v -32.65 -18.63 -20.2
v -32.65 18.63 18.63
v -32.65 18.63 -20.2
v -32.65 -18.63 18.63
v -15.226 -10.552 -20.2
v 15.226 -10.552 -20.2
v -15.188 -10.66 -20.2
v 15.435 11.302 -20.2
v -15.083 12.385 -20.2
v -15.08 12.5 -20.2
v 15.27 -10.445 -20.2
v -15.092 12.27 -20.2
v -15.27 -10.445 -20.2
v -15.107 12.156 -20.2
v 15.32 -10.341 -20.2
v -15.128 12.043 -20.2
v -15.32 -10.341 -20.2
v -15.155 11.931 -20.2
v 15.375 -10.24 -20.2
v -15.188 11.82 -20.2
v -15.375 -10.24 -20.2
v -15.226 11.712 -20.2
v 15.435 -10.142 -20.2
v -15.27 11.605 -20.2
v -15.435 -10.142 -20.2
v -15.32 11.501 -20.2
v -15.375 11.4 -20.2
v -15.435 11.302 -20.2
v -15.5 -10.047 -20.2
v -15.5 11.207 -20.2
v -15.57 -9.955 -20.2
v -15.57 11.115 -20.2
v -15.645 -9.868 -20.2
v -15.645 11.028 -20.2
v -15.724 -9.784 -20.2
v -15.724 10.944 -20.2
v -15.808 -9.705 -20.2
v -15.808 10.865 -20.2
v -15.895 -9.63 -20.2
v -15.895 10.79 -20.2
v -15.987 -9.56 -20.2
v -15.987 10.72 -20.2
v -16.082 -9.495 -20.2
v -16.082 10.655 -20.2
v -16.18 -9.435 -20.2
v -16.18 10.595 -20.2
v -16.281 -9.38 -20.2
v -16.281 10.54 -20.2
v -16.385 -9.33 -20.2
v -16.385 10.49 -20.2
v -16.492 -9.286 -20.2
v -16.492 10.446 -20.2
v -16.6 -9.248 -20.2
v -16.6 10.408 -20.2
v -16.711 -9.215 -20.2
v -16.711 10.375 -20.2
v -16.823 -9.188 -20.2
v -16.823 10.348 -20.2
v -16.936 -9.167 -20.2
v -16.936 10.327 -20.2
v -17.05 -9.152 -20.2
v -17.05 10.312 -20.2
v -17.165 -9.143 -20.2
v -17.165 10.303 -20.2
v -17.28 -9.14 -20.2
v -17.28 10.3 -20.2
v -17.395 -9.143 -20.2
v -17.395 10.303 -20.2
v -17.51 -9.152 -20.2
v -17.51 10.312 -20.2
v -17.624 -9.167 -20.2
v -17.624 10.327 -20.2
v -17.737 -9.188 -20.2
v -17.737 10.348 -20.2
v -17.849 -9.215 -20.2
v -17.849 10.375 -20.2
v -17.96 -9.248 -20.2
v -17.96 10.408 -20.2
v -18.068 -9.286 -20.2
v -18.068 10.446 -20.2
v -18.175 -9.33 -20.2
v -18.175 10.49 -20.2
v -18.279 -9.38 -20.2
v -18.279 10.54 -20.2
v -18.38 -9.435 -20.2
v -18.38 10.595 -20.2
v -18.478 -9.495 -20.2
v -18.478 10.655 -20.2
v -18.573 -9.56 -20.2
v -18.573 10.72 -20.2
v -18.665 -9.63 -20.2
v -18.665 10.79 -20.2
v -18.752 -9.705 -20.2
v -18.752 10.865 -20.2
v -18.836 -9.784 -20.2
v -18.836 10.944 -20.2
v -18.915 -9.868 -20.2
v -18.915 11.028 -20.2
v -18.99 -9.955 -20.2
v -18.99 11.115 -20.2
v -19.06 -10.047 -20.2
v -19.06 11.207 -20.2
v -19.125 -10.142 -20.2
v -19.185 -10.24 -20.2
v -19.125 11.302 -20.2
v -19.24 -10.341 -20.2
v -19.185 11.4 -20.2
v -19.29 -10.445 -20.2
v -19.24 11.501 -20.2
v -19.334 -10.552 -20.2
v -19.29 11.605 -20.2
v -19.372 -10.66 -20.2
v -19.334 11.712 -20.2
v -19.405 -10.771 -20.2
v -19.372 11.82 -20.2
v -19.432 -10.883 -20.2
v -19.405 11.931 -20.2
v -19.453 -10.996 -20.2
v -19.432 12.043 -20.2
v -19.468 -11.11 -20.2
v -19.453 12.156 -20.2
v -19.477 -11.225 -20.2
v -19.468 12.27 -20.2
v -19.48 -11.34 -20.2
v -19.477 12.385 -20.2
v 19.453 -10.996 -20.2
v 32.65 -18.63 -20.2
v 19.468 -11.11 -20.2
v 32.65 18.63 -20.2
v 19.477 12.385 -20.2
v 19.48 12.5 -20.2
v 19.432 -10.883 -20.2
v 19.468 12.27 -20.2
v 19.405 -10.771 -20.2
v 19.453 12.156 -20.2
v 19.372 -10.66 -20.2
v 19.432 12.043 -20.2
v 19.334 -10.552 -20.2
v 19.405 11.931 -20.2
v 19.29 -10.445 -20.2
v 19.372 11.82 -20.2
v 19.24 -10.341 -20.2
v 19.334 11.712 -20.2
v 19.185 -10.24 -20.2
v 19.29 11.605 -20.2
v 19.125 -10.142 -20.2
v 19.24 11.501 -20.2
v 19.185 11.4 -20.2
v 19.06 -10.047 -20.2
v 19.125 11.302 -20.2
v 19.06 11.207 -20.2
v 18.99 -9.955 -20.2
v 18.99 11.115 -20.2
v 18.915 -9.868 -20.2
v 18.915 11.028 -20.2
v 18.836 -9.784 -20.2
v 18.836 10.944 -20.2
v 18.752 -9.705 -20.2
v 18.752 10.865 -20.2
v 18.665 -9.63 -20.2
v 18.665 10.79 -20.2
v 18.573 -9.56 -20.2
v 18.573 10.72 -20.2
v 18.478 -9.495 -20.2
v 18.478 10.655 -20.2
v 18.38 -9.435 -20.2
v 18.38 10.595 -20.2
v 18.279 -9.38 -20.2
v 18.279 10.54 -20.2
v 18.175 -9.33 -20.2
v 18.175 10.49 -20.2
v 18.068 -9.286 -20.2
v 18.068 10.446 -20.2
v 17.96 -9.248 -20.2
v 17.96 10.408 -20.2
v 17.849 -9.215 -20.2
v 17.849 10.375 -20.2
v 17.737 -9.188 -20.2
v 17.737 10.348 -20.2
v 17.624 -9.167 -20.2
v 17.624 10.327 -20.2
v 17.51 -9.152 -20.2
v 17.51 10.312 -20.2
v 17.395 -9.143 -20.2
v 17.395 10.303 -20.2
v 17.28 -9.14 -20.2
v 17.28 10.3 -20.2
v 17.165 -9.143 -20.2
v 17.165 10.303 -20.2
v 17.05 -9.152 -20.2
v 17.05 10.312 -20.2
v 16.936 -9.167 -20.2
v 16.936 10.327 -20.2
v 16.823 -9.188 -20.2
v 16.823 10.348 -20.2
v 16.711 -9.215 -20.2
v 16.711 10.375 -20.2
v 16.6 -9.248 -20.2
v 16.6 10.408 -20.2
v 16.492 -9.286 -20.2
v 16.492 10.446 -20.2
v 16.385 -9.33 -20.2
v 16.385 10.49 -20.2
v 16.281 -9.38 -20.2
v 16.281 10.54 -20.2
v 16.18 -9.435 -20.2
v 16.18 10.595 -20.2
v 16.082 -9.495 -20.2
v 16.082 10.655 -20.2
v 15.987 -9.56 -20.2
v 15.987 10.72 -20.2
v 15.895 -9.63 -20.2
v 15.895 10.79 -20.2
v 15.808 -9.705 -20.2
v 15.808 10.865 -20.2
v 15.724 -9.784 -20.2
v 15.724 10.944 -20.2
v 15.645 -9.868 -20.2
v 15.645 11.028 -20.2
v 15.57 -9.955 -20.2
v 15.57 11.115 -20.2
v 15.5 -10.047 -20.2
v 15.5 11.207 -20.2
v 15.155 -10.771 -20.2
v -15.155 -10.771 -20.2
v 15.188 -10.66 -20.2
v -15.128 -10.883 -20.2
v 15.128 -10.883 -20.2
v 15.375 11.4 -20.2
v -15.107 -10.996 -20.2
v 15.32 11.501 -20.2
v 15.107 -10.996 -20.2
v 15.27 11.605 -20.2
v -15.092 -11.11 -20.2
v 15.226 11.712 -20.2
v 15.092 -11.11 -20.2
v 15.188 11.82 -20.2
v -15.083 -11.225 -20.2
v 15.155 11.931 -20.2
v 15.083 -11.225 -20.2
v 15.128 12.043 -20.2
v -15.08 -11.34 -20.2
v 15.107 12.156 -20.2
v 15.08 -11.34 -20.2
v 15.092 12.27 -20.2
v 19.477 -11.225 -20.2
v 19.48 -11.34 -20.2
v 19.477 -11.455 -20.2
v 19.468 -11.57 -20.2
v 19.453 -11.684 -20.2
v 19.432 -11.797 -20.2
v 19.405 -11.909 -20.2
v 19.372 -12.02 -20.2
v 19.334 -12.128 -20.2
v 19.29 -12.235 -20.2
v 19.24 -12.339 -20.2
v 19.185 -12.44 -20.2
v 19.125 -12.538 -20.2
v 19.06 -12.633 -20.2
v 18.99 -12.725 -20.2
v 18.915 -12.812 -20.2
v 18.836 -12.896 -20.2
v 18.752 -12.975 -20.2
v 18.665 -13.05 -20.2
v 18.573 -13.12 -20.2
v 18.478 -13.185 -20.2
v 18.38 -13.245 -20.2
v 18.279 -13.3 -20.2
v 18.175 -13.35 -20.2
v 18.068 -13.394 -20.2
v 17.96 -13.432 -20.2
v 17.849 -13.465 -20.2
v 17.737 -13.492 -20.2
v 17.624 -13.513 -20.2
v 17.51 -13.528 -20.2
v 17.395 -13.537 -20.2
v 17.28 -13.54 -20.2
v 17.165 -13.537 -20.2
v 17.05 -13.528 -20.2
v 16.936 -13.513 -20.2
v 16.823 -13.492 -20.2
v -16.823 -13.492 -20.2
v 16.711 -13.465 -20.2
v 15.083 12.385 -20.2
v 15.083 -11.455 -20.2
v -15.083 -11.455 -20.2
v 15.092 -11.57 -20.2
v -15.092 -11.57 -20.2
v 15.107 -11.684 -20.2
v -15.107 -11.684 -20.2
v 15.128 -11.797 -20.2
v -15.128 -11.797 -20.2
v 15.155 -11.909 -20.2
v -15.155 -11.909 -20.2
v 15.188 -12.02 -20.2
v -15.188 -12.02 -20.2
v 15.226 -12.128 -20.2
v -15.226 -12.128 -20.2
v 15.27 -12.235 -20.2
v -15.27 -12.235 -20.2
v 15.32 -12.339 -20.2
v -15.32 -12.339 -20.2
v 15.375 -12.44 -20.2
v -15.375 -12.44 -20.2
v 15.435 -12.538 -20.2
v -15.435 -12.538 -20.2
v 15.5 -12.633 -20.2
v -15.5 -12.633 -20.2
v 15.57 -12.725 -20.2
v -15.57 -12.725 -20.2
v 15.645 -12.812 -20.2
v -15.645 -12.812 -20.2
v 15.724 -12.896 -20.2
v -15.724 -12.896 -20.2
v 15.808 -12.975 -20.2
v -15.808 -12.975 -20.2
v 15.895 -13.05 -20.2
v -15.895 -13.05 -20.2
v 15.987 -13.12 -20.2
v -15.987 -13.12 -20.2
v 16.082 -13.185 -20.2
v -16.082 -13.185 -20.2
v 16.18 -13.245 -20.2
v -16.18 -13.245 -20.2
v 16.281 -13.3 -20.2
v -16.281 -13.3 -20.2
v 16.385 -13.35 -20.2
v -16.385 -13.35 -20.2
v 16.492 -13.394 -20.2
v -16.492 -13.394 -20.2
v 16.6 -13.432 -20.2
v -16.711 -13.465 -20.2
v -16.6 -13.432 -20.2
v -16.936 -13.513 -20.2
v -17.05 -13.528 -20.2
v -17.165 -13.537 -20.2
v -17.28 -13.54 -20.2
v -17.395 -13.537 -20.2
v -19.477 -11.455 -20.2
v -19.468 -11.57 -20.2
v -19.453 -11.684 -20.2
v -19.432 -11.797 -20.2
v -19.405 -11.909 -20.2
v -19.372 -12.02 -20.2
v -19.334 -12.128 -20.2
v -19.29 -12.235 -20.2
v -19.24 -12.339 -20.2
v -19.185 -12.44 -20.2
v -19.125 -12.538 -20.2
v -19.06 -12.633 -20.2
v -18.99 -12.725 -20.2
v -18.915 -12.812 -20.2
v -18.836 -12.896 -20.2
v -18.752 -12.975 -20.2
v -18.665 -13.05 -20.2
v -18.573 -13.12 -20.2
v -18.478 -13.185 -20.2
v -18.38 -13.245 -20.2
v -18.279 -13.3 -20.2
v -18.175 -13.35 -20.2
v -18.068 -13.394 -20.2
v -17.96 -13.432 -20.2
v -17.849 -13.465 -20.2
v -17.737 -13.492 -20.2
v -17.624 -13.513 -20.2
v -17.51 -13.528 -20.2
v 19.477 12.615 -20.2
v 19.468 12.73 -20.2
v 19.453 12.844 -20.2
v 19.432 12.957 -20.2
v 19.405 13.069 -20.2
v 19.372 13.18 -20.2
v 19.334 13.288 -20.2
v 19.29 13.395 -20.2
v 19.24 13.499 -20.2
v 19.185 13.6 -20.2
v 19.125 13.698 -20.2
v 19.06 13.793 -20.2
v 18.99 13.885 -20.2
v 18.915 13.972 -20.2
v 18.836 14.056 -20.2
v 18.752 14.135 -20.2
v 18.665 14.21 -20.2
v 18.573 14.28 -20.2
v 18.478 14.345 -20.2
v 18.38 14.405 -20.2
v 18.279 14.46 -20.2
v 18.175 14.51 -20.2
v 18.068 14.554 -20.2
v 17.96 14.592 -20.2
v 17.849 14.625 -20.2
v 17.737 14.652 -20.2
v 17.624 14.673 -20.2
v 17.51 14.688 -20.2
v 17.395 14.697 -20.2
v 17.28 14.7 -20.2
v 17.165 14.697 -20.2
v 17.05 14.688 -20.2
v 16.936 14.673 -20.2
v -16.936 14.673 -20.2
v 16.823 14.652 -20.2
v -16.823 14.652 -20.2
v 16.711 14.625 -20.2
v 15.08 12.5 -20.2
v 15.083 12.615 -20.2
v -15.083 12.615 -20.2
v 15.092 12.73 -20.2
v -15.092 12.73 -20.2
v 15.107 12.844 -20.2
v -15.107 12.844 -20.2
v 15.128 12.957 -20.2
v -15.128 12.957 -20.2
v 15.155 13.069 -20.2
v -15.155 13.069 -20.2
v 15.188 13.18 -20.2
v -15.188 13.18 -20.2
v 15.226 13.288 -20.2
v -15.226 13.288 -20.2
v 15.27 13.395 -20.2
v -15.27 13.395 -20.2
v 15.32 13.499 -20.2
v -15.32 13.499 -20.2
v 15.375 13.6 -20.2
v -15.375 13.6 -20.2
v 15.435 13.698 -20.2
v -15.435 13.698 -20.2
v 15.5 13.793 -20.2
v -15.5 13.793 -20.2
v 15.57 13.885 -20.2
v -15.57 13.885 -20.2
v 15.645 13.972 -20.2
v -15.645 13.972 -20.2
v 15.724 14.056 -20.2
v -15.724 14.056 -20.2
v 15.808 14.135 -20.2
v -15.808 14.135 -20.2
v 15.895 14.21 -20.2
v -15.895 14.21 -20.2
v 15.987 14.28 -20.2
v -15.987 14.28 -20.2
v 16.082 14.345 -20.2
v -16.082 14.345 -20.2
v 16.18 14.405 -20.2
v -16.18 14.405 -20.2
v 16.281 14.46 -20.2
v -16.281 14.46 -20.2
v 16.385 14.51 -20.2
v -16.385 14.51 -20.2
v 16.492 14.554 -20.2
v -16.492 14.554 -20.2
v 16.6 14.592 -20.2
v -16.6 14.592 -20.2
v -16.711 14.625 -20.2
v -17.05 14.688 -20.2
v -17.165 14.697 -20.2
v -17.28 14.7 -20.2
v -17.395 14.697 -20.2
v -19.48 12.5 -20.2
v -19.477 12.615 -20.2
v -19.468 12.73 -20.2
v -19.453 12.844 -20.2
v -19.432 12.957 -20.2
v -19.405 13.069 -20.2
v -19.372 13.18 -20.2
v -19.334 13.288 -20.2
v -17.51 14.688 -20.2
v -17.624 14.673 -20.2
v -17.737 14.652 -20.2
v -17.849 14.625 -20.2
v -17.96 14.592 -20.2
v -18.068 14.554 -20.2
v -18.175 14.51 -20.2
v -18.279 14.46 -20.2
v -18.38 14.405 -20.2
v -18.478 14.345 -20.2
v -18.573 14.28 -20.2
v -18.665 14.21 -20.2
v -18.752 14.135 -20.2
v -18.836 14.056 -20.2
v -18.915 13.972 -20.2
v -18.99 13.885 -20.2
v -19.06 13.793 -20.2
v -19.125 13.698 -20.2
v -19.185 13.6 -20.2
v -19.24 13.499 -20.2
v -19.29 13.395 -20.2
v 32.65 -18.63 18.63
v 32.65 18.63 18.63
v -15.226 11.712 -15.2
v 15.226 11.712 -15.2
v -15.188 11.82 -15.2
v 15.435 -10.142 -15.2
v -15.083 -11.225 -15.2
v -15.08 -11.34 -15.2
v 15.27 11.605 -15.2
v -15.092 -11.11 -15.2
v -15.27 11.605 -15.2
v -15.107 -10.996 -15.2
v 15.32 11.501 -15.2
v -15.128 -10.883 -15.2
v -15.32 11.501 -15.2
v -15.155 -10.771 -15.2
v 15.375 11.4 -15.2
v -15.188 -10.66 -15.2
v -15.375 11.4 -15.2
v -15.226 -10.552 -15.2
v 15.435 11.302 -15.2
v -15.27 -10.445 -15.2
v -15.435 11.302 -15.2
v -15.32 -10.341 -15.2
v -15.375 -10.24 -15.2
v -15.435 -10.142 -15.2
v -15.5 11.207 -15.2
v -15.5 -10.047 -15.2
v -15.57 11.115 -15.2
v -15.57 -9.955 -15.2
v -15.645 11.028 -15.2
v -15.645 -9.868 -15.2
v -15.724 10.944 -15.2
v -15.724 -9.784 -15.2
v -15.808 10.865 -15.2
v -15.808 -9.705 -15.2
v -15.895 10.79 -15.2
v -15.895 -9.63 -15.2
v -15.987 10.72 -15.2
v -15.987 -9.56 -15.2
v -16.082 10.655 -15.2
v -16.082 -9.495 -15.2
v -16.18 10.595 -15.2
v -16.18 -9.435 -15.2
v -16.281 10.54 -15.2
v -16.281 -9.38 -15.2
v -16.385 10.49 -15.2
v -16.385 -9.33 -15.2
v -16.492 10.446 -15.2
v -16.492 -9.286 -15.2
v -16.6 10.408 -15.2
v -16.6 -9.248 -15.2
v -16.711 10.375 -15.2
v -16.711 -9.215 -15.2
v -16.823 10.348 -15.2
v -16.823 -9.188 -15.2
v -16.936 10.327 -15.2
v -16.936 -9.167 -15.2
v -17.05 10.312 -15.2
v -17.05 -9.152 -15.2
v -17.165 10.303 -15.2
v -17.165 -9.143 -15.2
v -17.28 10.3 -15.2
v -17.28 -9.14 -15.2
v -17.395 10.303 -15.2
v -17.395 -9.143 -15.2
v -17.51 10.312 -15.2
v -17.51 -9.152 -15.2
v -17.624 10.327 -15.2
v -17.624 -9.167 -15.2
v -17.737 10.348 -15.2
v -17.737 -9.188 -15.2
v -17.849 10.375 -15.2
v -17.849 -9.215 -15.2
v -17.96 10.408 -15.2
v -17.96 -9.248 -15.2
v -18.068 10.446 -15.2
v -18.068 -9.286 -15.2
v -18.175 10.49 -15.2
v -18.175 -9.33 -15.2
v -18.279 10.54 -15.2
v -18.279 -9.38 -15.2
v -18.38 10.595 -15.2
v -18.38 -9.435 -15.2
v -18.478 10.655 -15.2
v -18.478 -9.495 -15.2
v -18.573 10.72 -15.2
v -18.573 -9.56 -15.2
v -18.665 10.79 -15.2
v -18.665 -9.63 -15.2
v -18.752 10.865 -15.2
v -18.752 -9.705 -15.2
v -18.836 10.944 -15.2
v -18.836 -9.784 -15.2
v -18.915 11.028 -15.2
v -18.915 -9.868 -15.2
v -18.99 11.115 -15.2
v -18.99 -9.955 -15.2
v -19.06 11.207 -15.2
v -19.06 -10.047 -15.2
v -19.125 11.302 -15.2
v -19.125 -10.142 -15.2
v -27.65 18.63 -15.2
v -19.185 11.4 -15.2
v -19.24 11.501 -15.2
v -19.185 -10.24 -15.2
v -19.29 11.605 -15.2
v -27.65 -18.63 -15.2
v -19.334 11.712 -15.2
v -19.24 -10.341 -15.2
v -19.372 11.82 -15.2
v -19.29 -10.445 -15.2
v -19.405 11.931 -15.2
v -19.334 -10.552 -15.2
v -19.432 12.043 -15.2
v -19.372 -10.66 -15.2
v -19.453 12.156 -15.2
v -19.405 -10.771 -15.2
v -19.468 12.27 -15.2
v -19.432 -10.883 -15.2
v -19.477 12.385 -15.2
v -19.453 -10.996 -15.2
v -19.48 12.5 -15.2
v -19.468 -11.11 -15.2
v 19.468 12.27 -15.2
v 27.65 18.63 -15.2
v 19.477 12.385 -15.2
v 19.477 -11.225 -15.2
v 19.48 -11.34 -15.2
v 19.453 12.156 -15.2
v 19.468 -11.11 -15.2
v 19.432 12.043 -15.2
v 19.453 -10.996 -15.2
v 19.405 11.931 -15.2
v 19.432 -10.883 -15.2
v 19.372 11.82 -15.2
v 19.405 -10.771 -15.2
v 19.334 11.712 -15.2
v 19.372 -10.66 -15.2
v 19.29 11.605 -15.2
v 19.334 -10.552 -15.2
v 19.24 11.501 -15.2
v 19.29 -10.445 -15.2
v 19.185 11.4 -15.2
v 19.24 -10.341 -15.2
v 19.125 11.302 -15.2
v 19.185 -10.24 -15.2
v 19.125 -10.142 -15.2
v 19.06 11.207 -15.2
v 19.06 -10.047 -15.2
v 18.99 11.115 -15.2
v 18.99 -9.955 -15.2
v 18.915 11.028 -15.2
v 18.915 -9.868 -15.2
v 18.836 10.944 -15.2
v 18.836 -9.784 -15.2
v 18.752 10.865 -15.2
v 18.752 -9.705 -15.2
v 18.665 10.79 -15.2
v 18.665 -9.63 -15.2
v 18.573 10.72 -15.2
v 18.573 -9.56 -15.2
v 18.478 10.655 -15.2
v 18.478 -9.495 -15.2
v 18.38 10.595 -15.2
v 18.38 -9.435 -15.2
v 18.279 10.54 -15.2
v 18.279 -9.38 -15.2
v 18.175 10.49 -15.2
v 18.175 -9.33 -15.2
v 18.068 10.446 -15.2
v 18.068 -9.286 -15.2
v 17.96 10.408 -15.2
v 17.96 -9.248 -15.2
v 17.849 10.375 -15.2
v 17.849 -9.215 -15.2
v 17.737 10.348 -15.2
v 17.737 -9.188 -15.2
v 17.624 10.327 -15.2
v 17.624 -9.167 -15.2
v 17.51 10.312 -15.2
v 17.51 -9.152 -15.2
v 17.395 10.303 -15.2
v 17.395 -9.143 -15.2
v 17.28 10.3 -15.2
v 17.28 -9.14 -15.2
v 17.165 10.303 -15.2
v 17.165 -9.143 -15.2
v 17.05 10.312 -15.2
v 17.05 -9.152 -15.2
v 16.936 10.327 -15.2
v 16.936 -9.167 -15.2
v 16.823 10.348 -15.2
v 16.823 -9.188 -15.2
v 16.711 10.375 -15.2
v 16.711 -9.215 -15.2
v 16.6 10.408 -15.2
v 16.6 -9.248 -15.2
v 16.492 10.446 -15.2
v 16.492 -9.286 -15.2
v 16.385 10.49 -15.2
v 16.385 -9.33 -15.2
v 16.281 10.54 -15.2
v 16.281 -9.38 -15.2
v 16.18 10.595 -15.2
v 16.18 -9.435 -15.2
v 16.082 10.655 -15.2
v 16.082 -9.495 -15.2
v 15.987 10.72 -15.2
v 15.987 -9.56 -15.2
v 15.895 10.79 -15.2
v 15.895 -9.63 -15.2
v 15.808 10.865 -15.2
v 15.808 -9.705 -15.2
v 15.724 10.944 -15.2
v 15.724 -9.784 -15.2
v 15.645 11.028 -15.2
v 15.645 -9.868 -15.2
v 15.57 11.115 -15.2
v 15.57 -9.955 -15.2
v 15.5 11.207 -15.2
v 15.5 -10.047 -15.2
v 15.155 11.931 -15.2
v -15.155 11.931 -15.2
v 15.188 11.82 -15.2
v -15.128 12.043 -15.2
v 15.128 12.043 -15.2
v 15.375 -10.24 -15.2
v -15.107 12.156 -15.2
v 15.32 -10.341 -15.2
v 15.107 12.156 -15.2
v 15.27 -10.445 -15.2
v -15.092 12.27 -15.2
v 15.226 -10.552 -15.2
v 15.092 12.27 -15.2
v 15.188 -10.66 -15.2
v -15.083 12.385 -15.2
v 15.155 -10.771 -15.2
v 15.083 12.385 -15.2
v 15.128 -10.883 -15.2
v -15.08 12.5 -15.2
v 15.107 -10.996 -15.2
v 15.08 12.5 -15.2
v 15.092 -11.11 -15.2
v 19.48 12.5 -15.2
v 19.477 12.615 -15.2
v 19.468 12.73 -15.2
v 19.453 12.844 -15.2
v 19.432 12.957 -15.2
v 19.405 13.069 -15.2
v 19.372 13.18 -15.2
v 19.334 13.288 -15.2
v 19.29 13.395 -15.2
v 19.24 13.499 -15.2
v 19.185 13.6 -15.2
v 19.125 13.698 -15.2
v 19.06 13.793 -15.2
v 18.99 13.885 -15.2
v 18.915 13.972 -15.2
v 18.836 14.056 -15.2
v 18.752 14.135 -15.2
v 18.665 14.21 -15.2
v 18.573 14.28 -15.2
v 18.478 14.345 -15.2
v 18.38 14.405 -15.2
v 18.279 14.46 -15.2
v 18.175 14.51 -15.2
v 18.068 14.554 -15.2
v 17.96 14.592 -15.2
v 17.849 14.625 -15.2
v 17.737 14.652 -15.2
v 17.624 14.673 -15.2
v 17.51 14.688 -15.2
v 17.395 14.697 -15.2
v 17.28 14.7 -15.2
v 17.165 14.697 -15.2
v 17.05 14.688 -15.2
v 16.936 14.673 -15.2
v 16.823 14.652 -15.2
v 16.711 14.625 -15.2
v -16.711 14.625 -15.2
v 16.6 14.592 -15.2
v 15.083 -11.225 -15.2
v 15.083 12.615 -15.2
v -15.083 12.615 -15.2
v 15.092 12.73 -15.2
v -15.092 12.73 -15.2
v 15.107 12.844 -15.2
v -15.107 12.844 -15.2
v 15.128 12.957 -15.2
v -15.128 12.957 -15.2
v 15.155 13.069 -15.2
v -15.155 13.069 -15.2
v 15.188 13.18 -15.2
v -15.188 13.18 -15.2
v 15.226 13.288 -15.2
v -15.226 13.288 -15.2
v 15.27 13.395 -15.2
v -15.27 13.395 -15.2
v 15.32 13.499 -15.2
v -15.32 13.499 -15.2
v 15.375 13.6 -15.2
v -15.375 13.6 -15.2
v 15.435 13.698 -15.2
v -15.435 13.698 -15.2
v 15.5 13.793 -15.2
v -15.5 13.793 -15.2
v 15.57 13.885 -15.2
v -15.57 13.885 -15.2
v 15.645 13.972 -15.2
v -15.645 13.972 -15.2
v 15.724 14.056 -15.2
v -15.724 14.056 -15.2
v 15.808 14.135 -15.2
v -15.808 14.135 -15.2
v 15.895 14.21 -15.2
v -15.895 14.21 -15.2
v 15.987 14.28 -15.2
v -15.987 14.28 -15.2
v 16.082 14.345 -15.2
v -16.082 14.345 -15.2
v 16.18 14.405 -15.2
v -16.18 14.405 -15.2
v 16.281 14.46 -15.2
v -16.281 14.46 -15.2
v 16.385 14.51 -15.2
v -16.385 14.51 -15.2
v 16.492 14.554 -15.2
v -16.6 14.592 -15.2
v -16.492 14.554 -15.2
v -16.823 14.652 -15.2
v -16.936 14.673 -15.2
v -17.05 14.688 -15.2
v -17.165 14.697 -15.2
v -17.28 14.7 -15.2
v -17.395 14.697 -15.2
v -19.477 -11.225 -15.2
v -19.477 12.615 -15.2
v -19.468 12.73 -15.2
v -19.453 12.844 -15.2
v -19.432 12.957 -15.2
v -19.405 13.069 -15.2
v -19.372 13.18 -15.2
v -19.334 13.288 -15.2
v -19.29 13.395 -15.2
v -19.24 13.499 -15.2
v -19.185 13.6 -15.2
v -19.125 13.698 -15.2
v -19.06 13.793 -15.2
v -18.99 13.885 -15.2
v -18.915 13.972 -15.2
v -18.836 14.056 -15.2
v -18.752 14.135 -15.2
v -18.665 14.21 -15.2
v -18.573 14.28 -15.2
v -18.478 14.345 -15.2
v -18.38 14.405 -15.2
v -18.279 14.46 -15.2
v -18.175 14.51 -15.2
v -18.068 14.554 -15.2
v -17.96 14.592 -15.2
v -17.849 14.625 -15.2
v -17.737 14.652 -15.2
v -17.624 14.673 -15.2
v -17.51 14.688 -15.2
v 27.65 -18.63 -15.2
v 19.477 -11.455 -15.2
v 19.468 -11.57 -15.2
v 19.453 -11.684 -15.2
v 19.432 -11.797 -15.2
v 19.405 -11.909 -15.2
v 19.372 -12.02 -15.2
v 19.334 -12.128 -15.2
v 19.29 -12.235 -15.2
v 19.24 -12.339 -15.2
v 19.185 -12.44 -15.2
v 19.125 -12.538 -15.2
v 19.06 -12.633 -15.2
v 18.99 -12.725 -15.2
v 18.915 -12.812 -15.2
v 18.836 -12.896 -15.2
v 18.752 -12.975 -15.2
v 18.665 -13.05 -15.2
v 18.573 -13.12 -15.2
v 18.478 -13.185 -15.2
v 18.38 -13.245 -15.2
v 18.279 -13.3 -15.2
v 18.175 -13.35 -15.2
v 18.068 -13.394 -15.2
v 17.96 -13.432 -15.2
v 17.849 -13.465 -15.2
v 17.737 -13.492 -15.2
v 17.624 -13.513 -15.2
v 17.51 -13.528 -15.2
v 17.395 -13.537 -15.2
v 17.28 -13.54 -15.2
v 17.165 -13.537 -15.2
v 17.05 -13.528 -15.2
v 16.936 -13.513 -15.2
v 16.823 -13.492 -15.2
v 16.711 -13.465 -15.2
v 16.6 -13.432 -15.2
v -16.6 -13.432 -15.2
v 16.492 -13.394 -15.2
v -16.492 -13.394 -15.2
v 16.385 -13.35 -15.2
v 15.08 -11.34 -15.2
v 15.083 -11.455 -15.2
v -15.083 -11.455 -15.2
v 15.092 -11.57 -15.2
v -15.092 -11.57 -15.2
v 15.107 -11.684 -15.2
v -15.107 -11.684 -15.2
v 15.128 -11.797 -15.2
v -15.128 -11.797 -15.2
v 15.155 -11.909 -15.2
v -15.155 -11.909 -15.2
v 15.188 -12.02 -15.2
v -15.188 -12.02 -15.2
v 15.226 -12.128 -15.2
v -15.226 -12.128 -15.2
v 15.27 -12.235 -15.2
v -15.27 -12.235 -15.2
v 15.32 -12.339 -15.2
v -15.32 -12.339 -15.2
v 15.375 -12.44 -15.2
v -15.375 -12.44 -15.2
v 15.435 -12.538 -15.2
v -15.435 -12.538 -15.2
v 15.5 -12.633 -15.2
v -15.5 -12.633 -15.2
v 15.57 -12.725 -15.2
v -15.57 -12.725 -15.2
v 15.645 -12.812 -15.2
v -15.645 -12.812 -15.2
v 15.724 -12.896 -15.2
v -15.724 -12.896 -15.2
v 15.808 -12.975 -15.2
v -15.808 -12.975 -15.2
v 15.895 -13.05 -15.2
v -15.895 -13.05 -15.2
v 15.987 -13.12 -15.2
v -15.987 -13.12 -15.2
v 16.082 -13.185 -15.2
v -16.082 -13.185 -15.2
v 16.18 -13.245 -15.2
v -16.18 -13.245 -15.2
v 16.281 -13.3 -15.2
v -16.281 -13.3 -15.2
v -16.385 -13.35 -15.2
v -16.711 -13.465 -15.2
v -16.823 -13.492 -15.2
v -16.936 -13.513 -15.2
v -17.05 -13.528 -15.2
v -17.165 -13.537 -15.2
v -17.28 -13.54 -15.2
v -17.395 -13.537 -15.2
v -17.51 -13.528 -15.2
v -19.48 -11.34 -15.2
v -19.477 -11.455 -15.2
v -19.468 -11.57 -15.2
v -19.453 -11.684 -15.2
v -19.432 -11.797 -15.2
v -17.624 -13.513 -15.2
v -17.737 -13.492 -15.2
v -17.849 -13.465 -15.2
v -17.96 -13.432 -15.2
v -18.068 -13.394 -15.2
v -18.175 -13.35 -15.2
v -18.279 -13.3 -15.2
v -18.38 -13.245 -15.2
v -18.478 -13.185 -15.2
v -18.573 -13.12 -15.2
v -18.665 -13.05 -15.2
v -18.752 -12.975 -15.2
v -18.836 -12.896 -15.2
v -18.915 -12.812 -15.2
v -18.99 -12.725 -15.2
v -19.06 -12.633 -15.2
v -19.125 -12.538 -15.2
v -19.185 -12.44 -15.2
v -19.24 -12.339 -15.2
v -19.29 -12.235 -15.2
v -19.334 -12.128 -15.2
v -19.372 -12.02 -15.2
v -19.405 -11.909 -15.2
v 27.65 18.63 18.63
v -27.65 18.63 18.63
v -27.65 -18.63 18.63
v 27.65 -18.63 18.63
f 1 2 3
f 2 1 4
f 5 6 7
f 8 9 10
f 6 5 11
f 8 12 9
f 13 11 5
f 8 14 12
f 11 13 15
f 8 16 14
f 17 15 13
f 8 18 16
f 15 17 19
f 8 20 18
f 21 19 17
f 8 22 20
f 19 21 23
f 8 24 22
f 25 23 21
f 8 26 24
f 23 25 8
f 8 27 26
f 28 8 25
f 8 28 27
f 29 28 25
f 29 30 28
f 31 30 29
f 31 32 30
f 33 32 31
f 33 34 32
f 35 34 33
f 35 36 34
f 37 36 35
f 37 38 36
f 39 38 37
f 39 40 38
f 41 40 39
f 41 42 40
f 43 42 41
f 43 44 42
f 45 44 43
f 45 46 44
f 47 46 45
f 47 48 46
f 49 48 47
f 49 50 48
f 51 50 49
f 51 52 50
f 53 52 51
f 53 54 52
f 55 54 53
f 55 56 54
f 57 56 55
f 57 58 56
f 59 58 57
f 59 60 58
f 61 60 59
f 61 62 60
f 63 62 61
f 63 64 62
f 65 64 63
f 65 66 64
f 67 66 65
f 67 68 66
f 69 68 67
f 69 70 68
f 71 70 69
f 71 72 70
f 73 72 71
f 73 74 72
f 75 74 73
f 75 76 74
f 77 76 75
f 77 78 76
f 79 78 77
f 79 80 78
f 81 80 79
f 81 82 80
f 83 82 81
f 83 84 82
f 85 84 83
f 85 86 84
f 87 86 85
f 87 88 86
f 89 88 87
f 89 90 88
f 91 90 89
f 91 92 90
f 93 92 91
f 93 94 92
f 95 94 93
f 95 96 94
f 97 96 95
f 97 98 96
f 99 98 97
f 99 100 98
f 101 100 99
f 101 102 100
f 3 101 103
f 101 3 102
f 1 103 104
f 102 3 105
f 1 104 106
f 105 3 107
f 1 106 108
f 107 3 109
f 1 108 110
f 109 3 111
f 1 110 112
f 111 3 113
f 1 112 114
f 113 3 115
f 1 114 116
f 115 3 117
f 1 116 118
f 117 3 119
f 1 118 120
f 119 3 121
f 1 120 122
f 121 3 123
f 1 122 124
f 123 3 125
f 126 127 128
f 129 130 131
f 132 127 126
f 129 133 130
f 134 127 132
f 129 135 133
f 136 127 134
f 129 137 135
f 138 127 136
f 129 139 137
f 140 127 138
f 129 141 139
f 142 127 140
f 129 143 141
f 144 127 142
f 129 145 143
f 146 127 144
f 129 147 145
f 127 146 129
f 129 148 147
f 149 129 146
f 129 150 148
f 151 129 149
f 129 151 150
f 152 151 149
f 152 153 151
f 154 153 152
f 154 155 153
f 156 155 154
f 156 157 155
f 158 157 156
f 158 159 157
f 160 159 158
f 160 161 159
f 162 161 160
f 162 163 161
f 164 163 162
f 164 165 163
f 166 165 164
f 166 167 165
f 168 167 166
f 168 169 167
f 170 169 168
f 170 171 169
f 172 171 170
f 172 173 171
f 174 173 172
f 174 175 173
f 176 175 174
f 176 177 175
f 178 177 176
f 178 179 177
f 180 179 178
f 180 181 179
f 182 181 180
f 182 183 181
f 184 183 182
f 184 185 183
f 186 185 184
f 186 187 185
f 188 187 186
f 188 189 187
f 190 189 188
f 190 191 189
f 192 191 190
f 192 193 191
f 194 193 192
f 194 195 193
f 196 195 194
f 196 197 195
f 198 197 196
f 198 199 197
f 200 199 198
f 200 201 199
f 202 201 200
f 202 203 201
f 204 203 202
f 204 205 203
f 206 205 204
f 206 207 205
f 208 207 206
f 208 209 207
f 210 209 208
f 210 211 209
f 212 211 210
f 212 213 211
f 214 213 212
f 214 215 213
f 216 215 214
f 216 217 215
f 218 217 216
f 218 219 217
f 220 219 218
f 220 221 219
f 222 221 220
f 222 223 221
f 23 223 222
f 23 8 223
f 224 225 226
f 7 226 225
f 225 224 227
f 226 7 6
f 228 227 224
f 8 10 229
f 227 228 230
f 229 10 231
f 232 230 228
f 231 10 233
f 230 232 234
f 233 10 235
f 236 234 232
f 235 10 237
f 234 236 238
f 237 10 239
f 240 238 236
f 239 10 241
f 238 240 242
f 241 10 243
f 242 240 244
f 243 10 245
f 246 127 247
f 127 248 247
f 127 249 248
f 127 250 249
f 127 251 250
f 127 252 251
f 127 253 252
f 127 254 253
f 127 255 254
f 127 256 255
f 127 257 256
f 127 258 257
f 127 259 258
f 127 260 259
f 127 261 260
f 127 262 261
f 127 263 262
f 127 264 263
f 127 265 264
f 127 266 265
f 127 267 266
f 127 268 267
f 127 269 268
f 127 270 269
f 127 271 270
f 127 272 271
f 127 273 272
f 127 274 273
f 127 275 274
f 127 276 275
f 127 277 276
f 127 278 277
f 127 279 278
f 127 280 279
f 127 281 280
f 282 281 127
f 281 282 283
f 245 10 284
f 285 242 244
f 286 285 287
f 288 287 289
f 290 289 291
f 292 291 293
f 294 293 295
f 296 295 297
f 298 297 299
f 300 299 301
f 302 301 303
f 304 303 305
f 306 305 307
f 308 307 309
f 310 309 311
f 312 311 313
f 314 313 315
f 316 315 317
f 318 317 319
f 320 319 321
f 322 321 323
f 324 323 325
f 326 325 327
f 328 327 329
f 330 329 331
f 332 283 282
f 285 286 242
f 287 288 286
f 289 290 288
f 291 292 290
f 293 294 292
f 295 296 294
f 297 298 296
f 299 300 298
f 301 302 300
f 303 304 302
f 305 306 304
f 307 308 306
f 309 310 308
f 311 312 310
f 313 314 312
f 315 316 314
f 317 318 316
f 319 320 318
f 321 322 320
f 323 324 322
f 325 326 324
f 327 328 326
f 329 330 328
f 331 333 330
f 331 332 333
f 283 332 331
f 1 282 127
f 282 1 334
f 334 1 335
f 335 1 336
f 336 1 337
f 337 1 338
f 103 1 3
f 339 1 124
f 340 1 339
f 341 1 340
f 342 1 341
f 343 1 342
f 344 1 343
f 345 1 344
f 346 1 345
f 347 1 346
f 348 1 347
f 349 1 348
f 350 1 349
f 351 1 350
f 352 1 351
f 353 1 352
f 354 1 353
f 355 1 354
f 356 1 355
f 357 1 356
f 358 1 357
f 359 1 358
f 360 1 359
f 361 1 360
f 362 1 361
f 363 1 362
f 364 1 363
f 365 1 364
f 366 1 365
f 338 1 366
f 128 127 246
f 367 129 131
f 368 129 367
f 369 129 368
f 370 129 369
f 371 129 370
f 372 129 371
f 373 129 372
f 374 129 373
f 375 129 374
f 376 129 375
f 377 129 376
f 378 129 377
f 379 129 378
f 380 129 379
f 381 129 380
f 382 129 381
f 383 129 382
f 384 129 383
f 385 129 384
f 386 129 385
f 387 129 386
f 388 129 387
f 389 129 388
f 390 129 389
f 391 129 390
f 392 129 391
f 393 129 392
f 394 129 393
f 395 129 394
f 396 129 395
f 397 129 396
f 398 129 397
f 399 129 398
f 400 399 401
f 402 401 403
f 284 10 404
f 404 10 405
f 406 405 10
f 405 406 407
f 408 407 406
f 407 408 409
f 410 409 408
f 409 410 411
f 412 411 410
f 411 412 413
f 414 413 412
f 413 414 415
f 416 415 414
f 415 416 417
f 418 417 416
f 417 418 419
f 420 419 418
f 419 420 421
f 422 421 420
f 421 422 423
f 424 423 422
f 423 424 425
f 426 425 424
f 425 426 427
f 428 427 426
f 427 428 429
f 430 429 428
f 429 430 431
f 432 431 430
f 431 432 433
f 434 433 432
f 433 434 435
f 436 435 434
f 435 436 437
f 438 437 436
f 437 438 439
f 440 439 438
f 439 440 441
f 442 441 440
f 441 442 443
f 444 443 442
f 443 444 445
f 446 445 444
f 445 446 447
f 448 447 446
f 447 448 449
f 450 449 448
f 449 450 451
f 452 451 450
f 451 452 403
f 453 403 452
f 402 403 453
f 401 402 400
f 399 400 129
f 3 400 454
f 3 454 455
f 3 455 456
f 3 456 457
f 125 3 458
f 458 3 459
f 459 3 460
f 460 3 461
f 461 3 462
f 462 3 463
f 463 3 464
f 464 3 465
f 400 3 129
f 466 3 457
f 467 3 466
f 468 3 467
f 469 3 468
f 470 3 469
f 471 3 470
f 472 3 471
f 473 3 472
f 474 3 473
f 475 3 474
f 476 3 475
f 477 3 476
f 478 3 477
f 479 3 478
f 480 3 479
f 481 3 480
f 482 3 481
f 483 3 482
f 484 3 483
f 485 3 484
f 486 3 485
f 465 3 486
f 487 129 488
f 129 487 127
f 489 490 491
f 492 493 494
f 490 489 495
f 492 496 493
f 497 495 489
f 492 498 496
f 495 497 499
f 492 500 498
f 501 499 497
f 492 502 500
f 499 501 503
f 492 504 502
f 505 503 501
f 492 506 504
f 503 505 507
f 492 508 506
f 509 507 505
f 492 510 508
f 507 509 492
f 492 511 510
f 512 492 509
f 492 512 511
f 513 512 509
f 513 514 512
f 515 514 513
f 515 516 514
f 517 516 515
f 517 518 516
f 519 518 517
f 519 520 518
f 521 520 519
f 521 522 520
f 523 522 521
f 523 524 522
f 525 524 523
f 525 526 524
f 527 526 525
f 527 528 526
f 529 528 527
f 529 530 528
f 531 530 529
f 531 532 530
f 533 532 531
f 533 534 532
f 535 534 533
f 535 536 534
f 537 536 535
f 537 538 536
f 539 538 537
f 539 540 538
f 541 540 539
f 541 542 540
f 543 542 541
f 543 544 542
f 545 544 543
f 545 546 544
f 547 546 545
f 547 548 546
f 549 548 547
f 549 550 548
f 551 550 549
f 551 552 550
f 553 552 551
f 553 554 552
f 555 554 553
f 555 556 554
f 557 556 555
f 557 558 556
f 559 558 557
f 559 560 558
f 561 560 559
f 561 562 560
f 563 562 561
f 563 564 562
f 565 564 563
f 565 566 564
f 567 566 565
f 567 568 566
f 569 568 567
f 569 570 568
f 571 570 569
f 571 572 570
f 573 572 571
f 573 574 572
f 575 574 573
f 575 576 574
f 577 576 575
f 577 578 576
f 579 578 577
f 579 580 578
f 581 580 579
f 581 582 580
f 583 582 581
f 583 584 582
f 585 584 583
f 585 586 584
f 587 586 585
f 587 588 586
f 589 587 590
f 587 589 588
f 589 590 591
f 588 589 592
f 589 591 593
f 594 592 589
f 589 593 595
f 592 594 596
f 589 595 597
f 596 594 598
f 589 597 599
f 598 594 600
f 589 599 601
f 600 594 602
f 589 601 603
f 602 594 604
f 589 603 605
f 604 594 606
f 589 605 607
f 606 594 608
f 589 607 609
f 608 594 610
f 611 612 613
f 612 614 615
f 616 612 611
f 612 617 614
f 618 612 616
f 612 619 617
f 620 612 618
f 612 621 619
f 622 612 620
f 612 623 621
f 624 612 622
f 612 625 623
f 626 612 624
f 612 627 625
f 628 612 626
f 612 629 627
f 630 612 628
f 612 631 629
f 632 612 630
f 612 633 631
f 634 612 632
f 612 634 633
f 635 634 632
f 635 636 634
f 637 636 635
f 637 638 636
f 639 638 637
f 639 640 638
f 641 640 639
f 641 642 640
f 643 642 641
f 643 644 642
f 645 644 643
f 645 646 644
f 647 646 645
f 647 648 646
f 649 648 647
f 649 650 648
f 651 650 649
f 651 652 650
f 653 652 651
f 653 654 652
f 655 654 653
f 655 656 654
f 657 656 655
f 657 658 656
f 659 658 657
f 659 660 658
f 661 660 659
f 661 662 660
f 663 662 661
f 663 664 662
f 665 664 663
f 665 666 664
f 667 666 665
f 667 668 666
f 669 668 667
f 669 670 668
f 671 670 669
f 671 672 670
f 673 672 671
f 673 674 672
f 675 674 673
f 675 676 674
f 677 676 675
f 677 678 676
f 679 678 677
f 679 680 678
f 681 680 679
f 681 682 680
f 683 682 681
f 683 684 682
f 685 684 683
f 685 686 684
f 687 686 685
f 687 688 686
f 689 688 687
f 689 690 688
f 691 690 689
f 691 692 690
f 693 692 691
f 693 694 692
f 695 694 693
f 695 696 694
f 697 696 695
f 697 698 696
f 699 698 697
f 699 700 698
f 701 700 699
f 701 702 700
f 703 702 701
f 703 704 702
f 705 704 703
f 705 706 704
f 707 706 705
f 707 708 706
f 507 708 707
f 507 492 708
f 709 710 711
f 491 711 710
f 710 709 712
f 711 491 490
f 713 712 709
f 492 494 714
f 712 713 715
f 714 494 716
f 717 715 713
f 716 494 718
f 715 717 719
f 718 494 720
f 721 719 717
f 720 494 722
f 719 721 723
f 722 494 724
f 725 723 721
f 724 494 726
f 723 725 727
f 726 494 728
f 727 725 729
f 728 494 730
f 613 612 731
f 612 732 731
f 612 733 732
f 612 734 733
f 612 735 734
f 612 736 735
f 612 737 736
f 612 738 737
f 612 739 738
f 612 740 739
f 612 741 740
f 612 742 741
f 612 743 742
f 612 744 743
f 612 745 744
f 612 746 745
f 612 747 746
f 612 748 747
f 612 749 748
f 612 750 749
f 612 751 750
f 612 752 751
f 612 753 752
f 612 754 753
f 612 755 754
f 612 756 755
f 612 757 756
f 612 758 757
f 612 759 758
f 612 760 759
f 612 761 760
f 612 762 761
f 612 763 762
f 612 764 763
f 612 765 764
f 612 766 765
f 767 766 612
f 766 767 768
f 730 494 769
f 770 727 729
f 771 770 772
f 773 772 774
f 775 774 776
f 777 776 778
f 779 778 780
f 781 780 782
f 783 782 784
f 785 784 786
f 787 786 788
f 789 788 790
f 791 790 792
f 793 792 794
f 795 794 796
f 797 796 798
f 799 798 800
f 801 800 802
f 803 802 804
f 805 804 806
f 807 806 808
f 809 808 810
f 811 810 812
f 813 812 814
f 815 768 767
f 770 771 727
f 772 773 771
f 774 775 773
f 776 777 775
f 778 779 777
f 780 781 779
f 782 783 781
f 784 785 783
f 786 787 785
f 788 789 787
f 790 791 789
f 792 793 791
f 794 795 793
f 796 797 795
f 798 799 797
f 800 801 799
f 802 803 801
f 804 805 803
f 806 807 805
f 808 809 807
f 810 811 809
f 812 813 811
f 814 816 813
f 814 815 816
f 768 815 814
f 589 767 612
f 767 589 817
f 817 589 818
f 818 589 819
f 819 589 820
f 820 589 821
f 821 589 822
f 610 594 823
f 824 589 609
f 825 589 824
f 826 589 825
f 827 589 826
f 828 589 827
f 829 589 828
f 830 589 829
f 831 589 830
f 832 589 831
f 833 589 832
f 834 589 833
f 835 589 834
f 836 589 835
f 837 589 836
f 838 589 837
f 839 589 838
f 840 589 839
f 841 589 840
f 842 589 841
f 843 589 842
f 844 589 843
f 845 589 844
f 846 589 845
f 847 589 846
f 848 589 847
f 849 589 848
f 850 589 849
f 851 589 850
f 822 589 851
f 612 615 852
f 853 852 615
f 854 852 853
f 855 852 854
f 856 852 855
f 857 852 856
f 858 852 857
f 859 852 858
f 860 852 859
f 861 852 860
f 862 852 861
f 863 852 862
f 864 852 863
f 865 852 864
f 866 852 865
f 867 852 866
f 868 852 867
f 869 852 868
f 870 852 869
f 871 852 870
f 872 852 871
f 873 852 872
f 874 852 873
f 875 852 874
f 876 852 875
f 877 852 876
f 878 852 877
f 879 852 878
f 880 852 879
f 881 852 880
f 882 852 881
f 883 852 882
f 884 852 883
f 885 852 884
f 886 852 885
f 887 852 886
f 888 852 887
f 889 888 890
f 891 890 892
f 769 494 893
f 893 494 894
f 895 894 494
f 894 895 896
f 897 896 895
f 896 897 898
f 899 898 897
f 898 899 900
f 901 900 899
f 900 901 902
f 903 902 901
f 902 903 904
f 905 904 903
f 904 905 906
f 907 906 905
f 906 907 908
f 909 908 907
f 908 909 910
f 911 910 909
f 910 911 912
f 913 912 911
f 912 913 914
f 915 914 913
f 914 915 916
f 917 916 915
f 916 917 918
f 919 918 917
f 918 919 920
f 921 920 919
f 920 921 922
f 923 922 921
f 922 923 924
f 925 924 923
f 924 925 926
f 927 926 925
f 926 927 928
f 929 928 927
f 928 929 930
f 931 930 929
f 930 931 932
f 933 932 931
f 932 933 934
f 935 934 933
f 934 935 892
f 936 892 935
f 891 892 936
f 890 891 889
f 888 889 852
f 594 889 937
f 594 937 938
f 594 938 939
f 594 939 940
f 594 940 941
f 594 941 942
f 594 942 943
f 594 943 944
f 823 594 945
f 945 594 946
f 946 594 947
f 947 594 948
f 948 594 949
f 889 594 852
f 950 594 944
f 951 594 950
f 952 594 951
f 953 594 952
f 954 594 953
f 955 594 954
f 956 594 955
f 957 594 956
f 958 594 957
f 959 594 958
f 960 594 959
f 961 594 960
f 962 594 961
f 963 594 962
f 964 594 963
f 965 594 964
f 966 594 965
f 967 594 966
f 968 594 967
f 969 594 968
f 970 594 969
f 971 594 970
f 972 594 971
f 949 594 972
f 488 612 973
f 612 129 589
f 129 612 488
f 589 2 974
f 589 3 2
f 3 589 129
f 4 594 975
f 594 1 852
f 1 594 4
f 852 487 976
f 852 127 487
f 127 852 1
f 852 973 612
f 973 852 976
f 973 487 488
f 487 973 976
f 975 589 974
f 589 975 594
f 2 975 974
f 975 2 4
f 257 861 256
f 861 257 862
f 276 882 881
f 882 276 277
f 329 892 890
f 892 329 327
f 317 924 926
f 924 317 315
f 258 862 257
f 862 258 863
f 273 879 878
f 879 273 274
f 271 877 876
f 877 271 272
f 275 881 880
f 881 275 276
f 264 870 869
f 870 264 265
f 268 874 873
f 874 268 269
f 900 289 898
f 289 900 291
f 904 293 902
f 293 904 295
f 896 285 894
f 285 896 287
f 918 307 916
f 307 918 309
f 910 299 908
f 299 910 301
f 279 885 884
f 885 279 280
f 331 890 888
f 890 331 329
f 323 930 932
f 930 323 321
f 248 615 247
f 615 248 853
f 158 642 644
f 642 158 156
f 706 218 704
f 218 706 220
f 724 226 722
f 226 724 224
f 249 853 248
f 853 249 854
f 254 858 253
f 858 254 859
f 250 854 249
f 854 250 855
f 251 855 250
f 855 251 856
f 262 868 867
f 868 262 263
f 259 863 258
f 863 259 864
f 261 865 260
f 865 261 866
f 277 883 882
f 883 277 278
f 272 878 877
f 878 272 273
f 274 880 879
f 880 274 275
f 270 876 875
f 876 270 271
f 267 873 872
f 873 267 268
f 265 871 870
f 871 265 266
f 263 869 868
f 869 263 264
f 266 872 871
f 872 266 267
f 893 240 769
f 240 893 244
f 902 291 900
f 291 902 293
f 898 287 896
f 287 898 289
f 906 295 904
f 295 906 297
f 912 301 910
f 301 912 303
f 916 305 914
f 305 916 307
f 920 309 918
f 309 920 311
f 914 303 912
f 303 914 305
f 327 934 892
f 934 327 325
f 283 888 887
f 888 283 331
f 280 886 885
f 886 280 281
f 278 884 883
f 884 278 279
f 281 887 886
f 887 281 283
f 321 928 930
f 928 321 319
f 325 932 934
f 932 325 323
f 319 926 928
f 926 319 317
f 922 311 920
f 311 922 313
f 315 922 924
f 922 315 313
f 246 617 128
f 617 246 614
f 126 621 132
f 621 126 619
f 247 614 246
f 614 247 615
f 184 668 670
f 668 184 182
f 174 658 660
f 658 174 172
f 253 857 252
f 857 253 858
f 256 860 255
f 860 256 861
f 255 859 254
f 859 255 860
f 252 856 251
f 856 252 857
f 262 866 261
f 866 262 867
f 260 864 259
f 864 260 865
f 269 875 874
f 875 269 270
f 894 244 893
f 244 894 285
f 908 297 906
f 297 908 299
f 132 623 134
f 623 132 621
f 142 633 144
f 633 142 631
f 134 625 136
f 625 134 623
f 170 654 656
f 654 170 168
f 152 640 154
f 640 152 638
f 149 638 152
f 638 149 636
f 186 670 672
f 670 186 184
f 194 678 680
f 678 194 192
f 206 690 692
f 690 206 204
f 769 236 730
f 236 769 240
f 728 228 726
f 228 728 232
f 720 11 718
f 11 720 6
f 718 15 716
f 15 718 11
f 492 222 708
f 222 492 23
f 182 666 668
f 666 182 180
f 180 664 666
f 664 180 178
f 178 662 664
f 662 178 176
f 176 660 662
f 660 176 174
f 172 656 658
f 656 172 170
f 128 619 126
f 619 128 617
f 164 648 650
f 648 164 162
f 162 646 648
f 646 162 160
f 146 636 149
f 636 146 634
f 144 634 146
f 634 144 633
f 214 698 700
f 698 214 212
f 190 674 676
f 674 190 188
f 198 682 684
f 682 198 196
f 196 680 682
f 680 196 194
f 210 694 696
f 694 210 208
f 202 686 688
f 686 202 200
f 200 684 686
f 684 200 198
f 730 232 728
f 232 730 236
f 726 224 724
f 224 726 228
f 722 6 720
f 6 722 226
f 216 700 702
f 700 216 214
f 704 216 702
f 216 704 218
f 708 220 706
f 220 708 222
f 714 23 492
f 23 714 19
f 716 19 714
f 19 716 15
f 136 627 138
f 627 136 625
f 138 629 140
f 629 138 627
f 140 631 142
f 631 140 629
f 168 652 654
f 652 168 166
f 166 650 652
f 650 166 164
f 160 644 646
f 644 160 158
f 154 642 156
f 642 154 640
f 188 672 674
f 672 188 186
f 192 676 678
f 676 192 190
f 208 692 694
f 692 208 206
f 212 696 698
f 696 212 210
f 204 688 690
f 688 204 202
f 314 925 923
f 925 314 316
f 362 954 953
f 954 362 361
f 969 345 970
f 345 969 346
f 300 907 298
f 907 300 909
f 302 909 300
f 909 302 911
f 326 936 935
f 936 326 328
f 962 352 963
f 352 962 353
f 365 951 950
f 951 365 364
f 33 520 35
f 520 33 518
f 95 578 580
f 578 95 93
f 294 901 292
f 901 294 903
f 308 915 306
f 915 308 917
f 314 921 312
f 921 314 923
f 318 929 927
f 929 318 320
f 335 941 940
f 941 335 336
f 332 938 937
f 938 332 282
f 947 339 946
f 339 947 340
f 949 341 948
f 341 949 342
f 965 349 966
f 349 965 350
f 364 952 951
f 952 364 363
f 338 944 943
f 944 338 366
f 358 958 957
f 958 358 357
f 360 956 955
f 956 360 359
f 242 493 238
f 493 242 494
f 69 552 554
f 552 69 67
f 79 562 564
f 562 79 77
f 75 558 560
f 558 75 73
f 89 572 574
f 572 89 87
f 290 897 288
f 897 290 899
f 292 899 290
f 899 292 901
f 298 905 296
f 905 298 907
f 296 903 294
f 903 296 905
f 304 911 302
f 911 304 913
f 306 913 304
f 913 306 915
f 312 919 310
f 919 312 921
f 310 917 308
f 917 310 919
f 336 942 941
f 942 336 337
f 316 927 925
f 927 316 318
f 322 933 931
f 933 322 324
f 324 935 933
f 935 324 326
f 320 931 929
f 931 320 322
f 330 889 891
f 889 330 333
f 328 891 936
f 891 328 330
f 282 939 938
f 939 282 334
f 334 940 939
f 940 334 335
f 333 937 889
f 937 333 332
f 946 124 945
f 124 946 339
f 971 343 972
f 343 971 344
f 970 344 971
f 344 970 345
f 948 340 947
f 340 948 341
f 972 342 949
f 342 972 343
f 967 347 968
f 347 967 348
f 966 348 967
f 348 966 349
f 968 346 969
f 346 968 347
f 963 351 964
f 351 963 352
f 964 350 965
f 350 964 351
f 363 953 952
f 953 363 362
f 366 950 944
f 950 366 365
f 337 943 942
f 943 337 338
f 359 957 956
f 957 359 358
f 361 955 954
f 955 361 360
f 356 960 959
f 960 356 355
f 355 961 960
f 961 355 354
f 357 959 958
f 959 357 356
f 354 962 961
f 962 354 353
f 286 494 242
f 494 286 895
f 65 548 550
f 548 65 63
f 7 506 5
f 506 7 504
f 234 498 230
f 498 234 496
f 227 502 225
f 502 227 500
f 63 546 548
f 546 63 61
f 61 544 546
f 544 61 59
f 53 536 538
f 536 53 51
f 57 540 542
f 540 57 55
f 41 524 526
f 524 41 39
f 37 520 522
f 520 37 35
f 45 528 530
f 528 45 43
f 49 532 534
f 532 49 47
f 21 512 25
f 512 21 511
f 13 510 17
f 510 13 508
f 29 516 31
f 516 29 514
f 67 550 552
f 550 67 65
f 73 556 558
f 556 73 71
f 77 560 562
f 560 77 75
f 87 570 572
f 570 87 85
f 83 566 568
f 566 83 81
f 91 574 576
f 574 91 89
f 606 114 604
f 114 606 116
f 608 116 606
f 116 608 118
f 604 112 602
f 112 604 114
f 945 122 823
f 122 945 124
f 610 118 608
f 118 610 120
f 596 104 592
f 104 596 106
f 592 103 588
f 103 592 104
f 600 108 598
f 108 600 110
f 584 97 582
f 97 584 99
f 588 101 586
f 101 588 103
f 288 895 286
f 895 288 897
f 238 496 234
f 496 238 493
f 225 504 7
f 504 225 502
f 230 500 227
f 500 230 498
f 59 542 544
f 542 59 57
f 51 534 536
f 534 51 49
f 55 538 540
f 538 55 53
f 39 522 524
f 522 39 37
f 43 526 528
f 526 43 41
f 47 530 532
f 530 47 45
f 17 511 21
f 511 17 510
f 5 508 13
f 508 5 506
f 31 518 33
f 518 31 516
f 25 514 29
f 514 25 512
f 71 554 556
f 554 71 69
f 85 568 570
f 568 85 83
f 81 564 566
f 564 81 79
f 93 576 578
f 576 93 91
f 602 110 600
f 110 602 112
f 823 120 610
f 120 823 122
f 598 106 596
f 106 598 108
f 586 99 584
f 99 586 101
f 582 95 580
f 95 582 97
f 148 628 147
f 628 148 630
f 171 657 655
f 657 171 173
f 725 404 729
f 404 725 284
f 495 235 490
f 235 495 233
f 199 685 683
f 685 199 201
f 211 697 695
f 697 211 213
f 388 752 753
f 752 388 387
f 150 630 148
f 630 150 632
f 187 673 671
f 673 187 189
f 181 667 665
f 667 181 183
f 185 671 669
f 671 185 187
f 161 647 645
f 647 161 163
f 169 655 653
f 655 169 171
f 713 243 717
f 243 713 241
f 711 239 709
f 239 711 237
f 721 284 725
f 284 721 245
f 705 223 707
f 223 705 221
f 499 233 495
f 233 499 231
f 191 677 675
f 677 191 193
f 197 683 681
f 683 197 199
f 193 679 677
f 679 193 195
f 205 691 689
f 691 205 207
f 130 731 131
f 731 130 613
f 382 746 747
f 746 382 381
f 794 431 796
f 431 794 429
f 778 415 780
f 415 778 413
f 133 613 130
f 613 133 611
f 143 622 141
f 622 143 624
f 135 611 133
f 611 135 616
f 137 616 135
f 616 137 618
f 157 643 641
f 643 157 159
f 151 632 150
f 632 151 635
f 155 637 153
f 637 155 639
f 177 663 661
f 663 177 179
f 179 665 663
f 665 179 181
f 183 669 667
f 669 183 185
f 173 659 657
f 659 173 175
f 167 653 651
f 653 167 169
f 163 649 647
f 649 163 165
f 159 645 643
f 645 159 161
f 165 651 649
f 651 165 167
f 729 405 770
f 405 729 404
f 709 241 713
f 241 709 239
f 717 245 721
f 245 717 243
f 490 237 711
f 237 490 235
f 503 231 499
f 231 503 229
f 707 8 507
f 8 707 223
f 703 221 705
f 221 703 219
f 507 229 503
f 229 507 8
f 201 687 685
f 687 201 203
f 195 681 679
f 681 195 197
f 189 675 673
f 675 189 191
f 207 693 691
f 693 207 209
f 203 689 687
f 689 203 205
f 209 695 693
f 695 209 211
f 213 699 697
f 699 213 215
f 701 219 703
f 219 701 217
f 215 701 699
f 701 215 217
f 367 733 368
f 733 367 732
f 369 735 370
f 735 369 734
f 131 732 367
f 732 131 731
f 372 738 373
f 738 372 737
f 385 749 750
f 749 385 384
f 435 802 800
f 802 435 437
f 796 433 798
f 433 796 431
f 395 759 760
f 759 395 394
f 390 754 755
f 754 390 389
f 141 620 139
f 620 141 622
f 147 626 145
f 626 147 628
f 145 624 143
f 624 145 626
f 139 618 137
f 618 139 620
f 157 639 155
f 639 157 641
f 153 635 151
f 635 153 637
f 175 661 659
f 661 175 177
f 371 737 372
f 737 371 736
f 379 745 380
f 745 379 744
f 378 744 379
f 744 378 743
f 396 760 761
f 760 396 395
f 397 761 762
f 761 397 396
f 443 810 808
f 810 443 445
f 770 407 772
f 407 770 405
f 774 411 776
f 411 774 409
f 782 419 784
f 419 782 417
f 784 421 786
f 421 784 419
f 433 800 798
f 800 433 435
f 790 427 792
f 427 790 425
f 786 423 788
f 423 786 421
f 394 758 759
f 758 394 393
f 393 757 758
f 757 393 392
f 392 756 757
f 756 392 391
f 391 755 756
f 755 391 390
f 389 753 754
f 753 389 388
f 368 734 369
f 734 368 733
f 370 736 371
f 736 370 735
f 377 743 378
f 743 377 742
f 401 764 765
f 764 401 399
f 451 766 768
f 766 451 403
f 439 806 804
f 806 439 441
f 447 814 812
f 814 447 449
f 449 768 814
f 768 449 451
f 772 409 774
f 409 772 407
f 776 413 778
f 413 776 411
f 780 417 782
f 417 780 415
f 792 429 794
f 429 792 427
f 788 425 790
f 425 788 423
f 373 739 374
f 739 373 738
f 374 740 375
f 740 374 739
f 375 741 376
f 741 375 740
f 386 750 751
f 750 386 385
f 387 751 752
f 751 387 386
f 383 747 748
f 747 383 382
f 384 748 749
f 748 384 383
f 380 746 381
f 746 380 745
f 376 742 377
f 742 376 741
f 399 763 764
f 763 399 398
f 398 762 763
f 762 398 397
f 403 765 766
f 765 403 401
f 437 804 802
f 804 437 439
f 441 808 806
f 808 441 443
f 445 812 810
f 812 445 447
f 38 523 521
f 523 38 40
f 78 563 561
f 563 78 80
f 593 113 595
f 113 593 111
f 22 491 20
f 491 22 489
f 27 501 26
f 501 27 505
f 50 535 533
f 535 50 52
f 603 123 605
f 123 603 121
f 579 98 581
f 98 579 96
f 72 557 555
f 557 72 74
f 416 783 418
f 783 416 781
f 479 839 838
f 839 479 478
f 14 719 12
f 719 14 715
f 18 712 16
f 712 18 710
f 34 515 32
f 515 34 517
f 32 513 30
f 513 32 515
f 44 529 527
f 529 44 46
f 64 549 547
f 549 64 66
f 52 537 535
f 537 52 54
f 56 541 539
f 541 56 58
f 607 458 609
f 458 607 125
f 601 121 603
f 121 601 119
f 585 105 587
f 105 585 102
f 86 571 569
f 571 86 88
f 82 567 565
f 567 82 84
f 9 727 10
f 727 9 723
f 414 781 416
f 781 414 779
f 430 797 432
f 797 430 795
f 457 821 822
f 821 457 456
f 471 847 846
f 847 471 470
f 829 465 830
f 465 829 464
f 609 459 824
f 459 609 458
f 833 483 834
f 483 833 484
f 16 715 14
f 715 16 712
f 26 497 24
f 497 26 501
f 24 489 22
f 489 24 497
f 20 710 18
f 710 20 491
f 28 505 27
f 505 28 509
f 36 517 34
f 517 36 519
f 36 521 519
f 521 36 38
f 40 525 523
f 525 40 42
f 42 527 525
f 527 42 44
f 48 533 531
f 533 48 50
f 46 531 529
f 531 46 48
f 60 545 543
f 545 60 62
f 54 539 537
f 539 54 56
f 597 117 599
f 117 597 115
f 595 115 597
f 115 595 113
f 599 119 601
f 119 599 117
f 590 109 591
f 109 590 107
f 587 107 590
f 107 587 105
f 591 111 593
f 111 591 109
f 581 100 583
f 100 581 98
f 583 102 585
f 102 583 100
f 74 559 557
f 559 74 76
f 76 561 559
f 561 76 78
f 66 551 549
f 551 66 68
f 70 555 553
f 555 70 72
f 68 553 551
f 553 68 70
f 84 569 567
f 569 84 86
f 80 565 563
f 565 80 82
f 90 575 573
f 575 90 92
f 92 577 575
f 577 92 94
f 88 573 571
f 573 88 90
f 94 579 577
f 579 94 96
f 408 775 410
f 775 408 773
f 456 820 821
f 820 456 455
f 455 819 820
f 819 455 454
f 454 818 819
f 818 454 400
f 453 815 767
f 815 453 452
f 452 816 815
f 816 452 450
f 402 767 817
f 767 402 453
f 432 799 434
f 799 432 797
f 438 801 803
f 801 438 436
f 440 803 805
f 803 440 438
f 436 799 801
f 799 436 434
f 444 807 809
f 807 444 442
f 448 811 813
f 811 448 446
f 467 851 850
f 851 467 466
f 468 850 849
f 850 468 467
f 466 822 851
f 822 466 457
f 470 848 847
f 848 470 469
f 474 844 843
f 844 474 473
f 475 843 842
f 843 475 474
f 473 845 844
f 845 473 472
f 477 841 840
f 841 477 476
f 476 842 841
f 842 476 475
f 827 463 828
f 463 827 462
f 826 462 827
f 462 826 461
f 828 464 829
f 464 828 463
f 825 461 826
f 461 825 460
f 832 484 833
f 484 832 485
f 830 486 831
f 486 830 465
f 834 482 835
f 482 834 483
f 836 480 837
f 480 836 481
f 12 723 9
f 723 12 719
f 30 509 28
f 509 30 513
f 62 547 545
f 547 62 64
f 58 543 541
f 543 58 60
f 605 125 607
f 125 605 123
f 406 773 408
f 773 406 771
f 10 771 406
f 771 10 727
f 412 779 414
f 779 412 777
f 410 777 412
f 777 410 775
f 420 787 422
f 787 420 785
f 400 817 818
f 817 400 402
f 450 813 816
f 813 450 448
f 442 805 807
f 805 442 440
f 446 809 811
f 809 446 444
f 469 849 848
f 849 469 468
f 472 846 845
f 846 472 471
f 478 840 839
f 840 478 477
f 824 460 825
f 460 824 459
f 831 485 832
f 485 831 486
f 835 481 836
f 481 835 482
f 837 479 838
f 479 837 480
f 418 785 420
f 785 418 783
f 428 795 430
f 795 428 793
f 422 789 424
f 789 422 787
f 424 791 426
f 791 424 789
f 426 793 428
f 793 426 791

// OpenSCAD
$fn=120;

//spindle wagon
M4_hole = 4.4;

mwx = 49.5;
mwy = 35.8;
mwz = 30.4;


module spindlemount() {
    
    cube([mwx, mwy, mwz], center=true);
    
    hdx = 5.27 + (M4_hole / 2);
    hdy1 = 4.36 + (M4_hole / 2);
    hdy2 = 28.20 + (M4_hole / 2);
    
    translate([((mwx / 2) - hdx),((mwy / 2) - hdy1),(mwz / 2)])
        cylinder(h = 20, d = M4_hole, center=true);
    translate([((-mwx / 2) + hdx),((mwy / 2) - hdy1),(mwz / 2)])
        cylinder(h = 20, d = M4_hole, center=true);
    translate([((mwx / 2) - hdx),((mwy / 2) - hdy2),(mwz / 2)])
        cylinder(h = 20, d = M4_hole, center=true);
    translate([((-mwx / 2) + hdx),((mwy / 2) - hdy2),(mwz / 2)])
        cylinder(h = 20, d = M4_hole, center=true);
    
}

wagon_width = 65.3;
wagon_height = 37.26;
wagon_thickness = 5;


rotate([180, 0, ])
difference() {
    union() {
        translate([0, 0, mwz/2 + (wagon_thickness/2)])
            cube([wagon_width, wagon_height, wagon_thickness], center=true); 
        translate([wagon_width / 2 - wagon_thickness / 2, 0, 0])
            cube([wagon_thickness, wagon_height, wagon_height], center=true);
        translate([-wagon_width / 2 + wagon_thickness / 2, 0, 0])
            cube([wagon_thickness, wagon_height, wagon_height], center=true);
    }
    translate([0, 0, -1]) {
        spindlemount();
    }
}
